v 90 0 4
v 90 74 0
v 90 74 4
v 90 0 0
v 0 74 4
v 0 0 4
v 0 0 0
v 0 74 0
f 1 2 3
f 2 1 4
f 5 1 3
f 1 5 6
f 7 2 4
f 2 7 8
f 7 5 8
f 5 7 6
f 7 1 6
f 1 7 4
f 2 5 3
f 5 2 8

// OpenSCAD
// An enclosure for a 70 x 50 mm perfboard that will hold a Raspberry Pi Pico 2 CW radio keyer. The board has a mounting hole in each corner. The Pico 2 and two 3.5 mm aux jacks sit on the board, laid out long ways: the Pico's micro-USB port must be exposed through one short end of the enclosure and the two aux ports through the other short end, so cables can be plugged in with the lid on. The board must come out for service, so the enclosure is a base and a removable lid, printed on an FDM printer. Requirements: The design shall place the Pico 2 and the two 3.5 mm jacks on the 70 x 50 mm board, from the parts catalogue, with the Pico's USB port facing one short (50 mm) end and both jacks facing the other short end, without the parts colliding or covering the corner holes, and shall declare that layout. The 70 x 50 x 1.6 mm board shall fit inside the closed enclosure with at least 0.5 mm clearance to every printed surface, apart from where it rests on its supports. The board shall rest on exactly four standoffs, one under each corner hole, each with a pilot hole for a screw through the board. With the lid closed, no part of the enclosure shall come within 12 mm above the board's top surface or 4 mm below its underside, except the standoffs under the holes, and the Pico and jacks shall lie inside the enclosure. With the lid closed, a micro-USB cable shall plug fully into the Pico through one opening in its end wall without touching the enclosure, and that opening shall be no more than 1.5 mm bigger than the plug on any side. With the lid closed, two 3.5 mm plugs shall plug fully into the two jacks at the same time through two openings in the opposite end wall without touching the enclosure, and each opening shall be no more than 1.5 mm bigger than the plug on any side. The enclosure shall be a base and a separate removable lid that locates on the base with a sliding fit and is held closed. The closed enclosure shall have no openings other than the USB opening, the two jack openings and screw holes, and its walls, floor and lid shall be 2 to 4 mm thick. The base and the lid shall each be one manifold body that prints on an FDM printer without supports. The closed enclosure shall be no larger than 90 x 70 x 35 mm, longest along the board's 70 mm side, and shall stand flat on a desk without tipping. With the lid off, the populated board shall drop straight down onto its standoffs and every board screw shall be reachable with a screwdriver. The design shall be delivered as a base STL, a lid STL, the OpenSCAD source, the declared board layout and the agent's own clearance report, and that report shall agree with an independent measurement.
$fn = 64;

// base: base manifold body, 90 x 70 x 4 mm thick, 70 mm side aligned with the board's 70 mm length, with a 70 x 50 mm recessed floor for the perfboard, a 20 mm x 10 mm USB port opening in one short (50 mm) end wall sized 1.5 mm larger than a micro-USB plug, two 6.35 mm jack openings in the opposite short end wall each 1.5 mm larger than a 3.5 mm plug, four corner standoffs with pilot holes, and four screw bosses; shape=box; params={"width": 90.0, "depth": 70.0, "height": 4.0}
module c_base() { cube([90, 70, 4]); }
// lid: lid manifold body, 90 x 70 x 4 mm thick, sliding-fit over the base with four screw bosses, no openings except the four screw bosses; shape=panel; params={"width": 90.0, "height": 4.0, "thickness": 4.0, "angle": 90.0, "lean": "back"}; attached to the back of base
module c_lid() { rotate([90, 0, 90]) linear_extrude(90) polygon([[0, 0], [4, 0], [4, 4], [0, 4]]); }

union() {
    color("SteelBlue") translate([0, 0, 0]) c_base();
    color("Orange") translate([0, 70, 0]) c_lid();
}
